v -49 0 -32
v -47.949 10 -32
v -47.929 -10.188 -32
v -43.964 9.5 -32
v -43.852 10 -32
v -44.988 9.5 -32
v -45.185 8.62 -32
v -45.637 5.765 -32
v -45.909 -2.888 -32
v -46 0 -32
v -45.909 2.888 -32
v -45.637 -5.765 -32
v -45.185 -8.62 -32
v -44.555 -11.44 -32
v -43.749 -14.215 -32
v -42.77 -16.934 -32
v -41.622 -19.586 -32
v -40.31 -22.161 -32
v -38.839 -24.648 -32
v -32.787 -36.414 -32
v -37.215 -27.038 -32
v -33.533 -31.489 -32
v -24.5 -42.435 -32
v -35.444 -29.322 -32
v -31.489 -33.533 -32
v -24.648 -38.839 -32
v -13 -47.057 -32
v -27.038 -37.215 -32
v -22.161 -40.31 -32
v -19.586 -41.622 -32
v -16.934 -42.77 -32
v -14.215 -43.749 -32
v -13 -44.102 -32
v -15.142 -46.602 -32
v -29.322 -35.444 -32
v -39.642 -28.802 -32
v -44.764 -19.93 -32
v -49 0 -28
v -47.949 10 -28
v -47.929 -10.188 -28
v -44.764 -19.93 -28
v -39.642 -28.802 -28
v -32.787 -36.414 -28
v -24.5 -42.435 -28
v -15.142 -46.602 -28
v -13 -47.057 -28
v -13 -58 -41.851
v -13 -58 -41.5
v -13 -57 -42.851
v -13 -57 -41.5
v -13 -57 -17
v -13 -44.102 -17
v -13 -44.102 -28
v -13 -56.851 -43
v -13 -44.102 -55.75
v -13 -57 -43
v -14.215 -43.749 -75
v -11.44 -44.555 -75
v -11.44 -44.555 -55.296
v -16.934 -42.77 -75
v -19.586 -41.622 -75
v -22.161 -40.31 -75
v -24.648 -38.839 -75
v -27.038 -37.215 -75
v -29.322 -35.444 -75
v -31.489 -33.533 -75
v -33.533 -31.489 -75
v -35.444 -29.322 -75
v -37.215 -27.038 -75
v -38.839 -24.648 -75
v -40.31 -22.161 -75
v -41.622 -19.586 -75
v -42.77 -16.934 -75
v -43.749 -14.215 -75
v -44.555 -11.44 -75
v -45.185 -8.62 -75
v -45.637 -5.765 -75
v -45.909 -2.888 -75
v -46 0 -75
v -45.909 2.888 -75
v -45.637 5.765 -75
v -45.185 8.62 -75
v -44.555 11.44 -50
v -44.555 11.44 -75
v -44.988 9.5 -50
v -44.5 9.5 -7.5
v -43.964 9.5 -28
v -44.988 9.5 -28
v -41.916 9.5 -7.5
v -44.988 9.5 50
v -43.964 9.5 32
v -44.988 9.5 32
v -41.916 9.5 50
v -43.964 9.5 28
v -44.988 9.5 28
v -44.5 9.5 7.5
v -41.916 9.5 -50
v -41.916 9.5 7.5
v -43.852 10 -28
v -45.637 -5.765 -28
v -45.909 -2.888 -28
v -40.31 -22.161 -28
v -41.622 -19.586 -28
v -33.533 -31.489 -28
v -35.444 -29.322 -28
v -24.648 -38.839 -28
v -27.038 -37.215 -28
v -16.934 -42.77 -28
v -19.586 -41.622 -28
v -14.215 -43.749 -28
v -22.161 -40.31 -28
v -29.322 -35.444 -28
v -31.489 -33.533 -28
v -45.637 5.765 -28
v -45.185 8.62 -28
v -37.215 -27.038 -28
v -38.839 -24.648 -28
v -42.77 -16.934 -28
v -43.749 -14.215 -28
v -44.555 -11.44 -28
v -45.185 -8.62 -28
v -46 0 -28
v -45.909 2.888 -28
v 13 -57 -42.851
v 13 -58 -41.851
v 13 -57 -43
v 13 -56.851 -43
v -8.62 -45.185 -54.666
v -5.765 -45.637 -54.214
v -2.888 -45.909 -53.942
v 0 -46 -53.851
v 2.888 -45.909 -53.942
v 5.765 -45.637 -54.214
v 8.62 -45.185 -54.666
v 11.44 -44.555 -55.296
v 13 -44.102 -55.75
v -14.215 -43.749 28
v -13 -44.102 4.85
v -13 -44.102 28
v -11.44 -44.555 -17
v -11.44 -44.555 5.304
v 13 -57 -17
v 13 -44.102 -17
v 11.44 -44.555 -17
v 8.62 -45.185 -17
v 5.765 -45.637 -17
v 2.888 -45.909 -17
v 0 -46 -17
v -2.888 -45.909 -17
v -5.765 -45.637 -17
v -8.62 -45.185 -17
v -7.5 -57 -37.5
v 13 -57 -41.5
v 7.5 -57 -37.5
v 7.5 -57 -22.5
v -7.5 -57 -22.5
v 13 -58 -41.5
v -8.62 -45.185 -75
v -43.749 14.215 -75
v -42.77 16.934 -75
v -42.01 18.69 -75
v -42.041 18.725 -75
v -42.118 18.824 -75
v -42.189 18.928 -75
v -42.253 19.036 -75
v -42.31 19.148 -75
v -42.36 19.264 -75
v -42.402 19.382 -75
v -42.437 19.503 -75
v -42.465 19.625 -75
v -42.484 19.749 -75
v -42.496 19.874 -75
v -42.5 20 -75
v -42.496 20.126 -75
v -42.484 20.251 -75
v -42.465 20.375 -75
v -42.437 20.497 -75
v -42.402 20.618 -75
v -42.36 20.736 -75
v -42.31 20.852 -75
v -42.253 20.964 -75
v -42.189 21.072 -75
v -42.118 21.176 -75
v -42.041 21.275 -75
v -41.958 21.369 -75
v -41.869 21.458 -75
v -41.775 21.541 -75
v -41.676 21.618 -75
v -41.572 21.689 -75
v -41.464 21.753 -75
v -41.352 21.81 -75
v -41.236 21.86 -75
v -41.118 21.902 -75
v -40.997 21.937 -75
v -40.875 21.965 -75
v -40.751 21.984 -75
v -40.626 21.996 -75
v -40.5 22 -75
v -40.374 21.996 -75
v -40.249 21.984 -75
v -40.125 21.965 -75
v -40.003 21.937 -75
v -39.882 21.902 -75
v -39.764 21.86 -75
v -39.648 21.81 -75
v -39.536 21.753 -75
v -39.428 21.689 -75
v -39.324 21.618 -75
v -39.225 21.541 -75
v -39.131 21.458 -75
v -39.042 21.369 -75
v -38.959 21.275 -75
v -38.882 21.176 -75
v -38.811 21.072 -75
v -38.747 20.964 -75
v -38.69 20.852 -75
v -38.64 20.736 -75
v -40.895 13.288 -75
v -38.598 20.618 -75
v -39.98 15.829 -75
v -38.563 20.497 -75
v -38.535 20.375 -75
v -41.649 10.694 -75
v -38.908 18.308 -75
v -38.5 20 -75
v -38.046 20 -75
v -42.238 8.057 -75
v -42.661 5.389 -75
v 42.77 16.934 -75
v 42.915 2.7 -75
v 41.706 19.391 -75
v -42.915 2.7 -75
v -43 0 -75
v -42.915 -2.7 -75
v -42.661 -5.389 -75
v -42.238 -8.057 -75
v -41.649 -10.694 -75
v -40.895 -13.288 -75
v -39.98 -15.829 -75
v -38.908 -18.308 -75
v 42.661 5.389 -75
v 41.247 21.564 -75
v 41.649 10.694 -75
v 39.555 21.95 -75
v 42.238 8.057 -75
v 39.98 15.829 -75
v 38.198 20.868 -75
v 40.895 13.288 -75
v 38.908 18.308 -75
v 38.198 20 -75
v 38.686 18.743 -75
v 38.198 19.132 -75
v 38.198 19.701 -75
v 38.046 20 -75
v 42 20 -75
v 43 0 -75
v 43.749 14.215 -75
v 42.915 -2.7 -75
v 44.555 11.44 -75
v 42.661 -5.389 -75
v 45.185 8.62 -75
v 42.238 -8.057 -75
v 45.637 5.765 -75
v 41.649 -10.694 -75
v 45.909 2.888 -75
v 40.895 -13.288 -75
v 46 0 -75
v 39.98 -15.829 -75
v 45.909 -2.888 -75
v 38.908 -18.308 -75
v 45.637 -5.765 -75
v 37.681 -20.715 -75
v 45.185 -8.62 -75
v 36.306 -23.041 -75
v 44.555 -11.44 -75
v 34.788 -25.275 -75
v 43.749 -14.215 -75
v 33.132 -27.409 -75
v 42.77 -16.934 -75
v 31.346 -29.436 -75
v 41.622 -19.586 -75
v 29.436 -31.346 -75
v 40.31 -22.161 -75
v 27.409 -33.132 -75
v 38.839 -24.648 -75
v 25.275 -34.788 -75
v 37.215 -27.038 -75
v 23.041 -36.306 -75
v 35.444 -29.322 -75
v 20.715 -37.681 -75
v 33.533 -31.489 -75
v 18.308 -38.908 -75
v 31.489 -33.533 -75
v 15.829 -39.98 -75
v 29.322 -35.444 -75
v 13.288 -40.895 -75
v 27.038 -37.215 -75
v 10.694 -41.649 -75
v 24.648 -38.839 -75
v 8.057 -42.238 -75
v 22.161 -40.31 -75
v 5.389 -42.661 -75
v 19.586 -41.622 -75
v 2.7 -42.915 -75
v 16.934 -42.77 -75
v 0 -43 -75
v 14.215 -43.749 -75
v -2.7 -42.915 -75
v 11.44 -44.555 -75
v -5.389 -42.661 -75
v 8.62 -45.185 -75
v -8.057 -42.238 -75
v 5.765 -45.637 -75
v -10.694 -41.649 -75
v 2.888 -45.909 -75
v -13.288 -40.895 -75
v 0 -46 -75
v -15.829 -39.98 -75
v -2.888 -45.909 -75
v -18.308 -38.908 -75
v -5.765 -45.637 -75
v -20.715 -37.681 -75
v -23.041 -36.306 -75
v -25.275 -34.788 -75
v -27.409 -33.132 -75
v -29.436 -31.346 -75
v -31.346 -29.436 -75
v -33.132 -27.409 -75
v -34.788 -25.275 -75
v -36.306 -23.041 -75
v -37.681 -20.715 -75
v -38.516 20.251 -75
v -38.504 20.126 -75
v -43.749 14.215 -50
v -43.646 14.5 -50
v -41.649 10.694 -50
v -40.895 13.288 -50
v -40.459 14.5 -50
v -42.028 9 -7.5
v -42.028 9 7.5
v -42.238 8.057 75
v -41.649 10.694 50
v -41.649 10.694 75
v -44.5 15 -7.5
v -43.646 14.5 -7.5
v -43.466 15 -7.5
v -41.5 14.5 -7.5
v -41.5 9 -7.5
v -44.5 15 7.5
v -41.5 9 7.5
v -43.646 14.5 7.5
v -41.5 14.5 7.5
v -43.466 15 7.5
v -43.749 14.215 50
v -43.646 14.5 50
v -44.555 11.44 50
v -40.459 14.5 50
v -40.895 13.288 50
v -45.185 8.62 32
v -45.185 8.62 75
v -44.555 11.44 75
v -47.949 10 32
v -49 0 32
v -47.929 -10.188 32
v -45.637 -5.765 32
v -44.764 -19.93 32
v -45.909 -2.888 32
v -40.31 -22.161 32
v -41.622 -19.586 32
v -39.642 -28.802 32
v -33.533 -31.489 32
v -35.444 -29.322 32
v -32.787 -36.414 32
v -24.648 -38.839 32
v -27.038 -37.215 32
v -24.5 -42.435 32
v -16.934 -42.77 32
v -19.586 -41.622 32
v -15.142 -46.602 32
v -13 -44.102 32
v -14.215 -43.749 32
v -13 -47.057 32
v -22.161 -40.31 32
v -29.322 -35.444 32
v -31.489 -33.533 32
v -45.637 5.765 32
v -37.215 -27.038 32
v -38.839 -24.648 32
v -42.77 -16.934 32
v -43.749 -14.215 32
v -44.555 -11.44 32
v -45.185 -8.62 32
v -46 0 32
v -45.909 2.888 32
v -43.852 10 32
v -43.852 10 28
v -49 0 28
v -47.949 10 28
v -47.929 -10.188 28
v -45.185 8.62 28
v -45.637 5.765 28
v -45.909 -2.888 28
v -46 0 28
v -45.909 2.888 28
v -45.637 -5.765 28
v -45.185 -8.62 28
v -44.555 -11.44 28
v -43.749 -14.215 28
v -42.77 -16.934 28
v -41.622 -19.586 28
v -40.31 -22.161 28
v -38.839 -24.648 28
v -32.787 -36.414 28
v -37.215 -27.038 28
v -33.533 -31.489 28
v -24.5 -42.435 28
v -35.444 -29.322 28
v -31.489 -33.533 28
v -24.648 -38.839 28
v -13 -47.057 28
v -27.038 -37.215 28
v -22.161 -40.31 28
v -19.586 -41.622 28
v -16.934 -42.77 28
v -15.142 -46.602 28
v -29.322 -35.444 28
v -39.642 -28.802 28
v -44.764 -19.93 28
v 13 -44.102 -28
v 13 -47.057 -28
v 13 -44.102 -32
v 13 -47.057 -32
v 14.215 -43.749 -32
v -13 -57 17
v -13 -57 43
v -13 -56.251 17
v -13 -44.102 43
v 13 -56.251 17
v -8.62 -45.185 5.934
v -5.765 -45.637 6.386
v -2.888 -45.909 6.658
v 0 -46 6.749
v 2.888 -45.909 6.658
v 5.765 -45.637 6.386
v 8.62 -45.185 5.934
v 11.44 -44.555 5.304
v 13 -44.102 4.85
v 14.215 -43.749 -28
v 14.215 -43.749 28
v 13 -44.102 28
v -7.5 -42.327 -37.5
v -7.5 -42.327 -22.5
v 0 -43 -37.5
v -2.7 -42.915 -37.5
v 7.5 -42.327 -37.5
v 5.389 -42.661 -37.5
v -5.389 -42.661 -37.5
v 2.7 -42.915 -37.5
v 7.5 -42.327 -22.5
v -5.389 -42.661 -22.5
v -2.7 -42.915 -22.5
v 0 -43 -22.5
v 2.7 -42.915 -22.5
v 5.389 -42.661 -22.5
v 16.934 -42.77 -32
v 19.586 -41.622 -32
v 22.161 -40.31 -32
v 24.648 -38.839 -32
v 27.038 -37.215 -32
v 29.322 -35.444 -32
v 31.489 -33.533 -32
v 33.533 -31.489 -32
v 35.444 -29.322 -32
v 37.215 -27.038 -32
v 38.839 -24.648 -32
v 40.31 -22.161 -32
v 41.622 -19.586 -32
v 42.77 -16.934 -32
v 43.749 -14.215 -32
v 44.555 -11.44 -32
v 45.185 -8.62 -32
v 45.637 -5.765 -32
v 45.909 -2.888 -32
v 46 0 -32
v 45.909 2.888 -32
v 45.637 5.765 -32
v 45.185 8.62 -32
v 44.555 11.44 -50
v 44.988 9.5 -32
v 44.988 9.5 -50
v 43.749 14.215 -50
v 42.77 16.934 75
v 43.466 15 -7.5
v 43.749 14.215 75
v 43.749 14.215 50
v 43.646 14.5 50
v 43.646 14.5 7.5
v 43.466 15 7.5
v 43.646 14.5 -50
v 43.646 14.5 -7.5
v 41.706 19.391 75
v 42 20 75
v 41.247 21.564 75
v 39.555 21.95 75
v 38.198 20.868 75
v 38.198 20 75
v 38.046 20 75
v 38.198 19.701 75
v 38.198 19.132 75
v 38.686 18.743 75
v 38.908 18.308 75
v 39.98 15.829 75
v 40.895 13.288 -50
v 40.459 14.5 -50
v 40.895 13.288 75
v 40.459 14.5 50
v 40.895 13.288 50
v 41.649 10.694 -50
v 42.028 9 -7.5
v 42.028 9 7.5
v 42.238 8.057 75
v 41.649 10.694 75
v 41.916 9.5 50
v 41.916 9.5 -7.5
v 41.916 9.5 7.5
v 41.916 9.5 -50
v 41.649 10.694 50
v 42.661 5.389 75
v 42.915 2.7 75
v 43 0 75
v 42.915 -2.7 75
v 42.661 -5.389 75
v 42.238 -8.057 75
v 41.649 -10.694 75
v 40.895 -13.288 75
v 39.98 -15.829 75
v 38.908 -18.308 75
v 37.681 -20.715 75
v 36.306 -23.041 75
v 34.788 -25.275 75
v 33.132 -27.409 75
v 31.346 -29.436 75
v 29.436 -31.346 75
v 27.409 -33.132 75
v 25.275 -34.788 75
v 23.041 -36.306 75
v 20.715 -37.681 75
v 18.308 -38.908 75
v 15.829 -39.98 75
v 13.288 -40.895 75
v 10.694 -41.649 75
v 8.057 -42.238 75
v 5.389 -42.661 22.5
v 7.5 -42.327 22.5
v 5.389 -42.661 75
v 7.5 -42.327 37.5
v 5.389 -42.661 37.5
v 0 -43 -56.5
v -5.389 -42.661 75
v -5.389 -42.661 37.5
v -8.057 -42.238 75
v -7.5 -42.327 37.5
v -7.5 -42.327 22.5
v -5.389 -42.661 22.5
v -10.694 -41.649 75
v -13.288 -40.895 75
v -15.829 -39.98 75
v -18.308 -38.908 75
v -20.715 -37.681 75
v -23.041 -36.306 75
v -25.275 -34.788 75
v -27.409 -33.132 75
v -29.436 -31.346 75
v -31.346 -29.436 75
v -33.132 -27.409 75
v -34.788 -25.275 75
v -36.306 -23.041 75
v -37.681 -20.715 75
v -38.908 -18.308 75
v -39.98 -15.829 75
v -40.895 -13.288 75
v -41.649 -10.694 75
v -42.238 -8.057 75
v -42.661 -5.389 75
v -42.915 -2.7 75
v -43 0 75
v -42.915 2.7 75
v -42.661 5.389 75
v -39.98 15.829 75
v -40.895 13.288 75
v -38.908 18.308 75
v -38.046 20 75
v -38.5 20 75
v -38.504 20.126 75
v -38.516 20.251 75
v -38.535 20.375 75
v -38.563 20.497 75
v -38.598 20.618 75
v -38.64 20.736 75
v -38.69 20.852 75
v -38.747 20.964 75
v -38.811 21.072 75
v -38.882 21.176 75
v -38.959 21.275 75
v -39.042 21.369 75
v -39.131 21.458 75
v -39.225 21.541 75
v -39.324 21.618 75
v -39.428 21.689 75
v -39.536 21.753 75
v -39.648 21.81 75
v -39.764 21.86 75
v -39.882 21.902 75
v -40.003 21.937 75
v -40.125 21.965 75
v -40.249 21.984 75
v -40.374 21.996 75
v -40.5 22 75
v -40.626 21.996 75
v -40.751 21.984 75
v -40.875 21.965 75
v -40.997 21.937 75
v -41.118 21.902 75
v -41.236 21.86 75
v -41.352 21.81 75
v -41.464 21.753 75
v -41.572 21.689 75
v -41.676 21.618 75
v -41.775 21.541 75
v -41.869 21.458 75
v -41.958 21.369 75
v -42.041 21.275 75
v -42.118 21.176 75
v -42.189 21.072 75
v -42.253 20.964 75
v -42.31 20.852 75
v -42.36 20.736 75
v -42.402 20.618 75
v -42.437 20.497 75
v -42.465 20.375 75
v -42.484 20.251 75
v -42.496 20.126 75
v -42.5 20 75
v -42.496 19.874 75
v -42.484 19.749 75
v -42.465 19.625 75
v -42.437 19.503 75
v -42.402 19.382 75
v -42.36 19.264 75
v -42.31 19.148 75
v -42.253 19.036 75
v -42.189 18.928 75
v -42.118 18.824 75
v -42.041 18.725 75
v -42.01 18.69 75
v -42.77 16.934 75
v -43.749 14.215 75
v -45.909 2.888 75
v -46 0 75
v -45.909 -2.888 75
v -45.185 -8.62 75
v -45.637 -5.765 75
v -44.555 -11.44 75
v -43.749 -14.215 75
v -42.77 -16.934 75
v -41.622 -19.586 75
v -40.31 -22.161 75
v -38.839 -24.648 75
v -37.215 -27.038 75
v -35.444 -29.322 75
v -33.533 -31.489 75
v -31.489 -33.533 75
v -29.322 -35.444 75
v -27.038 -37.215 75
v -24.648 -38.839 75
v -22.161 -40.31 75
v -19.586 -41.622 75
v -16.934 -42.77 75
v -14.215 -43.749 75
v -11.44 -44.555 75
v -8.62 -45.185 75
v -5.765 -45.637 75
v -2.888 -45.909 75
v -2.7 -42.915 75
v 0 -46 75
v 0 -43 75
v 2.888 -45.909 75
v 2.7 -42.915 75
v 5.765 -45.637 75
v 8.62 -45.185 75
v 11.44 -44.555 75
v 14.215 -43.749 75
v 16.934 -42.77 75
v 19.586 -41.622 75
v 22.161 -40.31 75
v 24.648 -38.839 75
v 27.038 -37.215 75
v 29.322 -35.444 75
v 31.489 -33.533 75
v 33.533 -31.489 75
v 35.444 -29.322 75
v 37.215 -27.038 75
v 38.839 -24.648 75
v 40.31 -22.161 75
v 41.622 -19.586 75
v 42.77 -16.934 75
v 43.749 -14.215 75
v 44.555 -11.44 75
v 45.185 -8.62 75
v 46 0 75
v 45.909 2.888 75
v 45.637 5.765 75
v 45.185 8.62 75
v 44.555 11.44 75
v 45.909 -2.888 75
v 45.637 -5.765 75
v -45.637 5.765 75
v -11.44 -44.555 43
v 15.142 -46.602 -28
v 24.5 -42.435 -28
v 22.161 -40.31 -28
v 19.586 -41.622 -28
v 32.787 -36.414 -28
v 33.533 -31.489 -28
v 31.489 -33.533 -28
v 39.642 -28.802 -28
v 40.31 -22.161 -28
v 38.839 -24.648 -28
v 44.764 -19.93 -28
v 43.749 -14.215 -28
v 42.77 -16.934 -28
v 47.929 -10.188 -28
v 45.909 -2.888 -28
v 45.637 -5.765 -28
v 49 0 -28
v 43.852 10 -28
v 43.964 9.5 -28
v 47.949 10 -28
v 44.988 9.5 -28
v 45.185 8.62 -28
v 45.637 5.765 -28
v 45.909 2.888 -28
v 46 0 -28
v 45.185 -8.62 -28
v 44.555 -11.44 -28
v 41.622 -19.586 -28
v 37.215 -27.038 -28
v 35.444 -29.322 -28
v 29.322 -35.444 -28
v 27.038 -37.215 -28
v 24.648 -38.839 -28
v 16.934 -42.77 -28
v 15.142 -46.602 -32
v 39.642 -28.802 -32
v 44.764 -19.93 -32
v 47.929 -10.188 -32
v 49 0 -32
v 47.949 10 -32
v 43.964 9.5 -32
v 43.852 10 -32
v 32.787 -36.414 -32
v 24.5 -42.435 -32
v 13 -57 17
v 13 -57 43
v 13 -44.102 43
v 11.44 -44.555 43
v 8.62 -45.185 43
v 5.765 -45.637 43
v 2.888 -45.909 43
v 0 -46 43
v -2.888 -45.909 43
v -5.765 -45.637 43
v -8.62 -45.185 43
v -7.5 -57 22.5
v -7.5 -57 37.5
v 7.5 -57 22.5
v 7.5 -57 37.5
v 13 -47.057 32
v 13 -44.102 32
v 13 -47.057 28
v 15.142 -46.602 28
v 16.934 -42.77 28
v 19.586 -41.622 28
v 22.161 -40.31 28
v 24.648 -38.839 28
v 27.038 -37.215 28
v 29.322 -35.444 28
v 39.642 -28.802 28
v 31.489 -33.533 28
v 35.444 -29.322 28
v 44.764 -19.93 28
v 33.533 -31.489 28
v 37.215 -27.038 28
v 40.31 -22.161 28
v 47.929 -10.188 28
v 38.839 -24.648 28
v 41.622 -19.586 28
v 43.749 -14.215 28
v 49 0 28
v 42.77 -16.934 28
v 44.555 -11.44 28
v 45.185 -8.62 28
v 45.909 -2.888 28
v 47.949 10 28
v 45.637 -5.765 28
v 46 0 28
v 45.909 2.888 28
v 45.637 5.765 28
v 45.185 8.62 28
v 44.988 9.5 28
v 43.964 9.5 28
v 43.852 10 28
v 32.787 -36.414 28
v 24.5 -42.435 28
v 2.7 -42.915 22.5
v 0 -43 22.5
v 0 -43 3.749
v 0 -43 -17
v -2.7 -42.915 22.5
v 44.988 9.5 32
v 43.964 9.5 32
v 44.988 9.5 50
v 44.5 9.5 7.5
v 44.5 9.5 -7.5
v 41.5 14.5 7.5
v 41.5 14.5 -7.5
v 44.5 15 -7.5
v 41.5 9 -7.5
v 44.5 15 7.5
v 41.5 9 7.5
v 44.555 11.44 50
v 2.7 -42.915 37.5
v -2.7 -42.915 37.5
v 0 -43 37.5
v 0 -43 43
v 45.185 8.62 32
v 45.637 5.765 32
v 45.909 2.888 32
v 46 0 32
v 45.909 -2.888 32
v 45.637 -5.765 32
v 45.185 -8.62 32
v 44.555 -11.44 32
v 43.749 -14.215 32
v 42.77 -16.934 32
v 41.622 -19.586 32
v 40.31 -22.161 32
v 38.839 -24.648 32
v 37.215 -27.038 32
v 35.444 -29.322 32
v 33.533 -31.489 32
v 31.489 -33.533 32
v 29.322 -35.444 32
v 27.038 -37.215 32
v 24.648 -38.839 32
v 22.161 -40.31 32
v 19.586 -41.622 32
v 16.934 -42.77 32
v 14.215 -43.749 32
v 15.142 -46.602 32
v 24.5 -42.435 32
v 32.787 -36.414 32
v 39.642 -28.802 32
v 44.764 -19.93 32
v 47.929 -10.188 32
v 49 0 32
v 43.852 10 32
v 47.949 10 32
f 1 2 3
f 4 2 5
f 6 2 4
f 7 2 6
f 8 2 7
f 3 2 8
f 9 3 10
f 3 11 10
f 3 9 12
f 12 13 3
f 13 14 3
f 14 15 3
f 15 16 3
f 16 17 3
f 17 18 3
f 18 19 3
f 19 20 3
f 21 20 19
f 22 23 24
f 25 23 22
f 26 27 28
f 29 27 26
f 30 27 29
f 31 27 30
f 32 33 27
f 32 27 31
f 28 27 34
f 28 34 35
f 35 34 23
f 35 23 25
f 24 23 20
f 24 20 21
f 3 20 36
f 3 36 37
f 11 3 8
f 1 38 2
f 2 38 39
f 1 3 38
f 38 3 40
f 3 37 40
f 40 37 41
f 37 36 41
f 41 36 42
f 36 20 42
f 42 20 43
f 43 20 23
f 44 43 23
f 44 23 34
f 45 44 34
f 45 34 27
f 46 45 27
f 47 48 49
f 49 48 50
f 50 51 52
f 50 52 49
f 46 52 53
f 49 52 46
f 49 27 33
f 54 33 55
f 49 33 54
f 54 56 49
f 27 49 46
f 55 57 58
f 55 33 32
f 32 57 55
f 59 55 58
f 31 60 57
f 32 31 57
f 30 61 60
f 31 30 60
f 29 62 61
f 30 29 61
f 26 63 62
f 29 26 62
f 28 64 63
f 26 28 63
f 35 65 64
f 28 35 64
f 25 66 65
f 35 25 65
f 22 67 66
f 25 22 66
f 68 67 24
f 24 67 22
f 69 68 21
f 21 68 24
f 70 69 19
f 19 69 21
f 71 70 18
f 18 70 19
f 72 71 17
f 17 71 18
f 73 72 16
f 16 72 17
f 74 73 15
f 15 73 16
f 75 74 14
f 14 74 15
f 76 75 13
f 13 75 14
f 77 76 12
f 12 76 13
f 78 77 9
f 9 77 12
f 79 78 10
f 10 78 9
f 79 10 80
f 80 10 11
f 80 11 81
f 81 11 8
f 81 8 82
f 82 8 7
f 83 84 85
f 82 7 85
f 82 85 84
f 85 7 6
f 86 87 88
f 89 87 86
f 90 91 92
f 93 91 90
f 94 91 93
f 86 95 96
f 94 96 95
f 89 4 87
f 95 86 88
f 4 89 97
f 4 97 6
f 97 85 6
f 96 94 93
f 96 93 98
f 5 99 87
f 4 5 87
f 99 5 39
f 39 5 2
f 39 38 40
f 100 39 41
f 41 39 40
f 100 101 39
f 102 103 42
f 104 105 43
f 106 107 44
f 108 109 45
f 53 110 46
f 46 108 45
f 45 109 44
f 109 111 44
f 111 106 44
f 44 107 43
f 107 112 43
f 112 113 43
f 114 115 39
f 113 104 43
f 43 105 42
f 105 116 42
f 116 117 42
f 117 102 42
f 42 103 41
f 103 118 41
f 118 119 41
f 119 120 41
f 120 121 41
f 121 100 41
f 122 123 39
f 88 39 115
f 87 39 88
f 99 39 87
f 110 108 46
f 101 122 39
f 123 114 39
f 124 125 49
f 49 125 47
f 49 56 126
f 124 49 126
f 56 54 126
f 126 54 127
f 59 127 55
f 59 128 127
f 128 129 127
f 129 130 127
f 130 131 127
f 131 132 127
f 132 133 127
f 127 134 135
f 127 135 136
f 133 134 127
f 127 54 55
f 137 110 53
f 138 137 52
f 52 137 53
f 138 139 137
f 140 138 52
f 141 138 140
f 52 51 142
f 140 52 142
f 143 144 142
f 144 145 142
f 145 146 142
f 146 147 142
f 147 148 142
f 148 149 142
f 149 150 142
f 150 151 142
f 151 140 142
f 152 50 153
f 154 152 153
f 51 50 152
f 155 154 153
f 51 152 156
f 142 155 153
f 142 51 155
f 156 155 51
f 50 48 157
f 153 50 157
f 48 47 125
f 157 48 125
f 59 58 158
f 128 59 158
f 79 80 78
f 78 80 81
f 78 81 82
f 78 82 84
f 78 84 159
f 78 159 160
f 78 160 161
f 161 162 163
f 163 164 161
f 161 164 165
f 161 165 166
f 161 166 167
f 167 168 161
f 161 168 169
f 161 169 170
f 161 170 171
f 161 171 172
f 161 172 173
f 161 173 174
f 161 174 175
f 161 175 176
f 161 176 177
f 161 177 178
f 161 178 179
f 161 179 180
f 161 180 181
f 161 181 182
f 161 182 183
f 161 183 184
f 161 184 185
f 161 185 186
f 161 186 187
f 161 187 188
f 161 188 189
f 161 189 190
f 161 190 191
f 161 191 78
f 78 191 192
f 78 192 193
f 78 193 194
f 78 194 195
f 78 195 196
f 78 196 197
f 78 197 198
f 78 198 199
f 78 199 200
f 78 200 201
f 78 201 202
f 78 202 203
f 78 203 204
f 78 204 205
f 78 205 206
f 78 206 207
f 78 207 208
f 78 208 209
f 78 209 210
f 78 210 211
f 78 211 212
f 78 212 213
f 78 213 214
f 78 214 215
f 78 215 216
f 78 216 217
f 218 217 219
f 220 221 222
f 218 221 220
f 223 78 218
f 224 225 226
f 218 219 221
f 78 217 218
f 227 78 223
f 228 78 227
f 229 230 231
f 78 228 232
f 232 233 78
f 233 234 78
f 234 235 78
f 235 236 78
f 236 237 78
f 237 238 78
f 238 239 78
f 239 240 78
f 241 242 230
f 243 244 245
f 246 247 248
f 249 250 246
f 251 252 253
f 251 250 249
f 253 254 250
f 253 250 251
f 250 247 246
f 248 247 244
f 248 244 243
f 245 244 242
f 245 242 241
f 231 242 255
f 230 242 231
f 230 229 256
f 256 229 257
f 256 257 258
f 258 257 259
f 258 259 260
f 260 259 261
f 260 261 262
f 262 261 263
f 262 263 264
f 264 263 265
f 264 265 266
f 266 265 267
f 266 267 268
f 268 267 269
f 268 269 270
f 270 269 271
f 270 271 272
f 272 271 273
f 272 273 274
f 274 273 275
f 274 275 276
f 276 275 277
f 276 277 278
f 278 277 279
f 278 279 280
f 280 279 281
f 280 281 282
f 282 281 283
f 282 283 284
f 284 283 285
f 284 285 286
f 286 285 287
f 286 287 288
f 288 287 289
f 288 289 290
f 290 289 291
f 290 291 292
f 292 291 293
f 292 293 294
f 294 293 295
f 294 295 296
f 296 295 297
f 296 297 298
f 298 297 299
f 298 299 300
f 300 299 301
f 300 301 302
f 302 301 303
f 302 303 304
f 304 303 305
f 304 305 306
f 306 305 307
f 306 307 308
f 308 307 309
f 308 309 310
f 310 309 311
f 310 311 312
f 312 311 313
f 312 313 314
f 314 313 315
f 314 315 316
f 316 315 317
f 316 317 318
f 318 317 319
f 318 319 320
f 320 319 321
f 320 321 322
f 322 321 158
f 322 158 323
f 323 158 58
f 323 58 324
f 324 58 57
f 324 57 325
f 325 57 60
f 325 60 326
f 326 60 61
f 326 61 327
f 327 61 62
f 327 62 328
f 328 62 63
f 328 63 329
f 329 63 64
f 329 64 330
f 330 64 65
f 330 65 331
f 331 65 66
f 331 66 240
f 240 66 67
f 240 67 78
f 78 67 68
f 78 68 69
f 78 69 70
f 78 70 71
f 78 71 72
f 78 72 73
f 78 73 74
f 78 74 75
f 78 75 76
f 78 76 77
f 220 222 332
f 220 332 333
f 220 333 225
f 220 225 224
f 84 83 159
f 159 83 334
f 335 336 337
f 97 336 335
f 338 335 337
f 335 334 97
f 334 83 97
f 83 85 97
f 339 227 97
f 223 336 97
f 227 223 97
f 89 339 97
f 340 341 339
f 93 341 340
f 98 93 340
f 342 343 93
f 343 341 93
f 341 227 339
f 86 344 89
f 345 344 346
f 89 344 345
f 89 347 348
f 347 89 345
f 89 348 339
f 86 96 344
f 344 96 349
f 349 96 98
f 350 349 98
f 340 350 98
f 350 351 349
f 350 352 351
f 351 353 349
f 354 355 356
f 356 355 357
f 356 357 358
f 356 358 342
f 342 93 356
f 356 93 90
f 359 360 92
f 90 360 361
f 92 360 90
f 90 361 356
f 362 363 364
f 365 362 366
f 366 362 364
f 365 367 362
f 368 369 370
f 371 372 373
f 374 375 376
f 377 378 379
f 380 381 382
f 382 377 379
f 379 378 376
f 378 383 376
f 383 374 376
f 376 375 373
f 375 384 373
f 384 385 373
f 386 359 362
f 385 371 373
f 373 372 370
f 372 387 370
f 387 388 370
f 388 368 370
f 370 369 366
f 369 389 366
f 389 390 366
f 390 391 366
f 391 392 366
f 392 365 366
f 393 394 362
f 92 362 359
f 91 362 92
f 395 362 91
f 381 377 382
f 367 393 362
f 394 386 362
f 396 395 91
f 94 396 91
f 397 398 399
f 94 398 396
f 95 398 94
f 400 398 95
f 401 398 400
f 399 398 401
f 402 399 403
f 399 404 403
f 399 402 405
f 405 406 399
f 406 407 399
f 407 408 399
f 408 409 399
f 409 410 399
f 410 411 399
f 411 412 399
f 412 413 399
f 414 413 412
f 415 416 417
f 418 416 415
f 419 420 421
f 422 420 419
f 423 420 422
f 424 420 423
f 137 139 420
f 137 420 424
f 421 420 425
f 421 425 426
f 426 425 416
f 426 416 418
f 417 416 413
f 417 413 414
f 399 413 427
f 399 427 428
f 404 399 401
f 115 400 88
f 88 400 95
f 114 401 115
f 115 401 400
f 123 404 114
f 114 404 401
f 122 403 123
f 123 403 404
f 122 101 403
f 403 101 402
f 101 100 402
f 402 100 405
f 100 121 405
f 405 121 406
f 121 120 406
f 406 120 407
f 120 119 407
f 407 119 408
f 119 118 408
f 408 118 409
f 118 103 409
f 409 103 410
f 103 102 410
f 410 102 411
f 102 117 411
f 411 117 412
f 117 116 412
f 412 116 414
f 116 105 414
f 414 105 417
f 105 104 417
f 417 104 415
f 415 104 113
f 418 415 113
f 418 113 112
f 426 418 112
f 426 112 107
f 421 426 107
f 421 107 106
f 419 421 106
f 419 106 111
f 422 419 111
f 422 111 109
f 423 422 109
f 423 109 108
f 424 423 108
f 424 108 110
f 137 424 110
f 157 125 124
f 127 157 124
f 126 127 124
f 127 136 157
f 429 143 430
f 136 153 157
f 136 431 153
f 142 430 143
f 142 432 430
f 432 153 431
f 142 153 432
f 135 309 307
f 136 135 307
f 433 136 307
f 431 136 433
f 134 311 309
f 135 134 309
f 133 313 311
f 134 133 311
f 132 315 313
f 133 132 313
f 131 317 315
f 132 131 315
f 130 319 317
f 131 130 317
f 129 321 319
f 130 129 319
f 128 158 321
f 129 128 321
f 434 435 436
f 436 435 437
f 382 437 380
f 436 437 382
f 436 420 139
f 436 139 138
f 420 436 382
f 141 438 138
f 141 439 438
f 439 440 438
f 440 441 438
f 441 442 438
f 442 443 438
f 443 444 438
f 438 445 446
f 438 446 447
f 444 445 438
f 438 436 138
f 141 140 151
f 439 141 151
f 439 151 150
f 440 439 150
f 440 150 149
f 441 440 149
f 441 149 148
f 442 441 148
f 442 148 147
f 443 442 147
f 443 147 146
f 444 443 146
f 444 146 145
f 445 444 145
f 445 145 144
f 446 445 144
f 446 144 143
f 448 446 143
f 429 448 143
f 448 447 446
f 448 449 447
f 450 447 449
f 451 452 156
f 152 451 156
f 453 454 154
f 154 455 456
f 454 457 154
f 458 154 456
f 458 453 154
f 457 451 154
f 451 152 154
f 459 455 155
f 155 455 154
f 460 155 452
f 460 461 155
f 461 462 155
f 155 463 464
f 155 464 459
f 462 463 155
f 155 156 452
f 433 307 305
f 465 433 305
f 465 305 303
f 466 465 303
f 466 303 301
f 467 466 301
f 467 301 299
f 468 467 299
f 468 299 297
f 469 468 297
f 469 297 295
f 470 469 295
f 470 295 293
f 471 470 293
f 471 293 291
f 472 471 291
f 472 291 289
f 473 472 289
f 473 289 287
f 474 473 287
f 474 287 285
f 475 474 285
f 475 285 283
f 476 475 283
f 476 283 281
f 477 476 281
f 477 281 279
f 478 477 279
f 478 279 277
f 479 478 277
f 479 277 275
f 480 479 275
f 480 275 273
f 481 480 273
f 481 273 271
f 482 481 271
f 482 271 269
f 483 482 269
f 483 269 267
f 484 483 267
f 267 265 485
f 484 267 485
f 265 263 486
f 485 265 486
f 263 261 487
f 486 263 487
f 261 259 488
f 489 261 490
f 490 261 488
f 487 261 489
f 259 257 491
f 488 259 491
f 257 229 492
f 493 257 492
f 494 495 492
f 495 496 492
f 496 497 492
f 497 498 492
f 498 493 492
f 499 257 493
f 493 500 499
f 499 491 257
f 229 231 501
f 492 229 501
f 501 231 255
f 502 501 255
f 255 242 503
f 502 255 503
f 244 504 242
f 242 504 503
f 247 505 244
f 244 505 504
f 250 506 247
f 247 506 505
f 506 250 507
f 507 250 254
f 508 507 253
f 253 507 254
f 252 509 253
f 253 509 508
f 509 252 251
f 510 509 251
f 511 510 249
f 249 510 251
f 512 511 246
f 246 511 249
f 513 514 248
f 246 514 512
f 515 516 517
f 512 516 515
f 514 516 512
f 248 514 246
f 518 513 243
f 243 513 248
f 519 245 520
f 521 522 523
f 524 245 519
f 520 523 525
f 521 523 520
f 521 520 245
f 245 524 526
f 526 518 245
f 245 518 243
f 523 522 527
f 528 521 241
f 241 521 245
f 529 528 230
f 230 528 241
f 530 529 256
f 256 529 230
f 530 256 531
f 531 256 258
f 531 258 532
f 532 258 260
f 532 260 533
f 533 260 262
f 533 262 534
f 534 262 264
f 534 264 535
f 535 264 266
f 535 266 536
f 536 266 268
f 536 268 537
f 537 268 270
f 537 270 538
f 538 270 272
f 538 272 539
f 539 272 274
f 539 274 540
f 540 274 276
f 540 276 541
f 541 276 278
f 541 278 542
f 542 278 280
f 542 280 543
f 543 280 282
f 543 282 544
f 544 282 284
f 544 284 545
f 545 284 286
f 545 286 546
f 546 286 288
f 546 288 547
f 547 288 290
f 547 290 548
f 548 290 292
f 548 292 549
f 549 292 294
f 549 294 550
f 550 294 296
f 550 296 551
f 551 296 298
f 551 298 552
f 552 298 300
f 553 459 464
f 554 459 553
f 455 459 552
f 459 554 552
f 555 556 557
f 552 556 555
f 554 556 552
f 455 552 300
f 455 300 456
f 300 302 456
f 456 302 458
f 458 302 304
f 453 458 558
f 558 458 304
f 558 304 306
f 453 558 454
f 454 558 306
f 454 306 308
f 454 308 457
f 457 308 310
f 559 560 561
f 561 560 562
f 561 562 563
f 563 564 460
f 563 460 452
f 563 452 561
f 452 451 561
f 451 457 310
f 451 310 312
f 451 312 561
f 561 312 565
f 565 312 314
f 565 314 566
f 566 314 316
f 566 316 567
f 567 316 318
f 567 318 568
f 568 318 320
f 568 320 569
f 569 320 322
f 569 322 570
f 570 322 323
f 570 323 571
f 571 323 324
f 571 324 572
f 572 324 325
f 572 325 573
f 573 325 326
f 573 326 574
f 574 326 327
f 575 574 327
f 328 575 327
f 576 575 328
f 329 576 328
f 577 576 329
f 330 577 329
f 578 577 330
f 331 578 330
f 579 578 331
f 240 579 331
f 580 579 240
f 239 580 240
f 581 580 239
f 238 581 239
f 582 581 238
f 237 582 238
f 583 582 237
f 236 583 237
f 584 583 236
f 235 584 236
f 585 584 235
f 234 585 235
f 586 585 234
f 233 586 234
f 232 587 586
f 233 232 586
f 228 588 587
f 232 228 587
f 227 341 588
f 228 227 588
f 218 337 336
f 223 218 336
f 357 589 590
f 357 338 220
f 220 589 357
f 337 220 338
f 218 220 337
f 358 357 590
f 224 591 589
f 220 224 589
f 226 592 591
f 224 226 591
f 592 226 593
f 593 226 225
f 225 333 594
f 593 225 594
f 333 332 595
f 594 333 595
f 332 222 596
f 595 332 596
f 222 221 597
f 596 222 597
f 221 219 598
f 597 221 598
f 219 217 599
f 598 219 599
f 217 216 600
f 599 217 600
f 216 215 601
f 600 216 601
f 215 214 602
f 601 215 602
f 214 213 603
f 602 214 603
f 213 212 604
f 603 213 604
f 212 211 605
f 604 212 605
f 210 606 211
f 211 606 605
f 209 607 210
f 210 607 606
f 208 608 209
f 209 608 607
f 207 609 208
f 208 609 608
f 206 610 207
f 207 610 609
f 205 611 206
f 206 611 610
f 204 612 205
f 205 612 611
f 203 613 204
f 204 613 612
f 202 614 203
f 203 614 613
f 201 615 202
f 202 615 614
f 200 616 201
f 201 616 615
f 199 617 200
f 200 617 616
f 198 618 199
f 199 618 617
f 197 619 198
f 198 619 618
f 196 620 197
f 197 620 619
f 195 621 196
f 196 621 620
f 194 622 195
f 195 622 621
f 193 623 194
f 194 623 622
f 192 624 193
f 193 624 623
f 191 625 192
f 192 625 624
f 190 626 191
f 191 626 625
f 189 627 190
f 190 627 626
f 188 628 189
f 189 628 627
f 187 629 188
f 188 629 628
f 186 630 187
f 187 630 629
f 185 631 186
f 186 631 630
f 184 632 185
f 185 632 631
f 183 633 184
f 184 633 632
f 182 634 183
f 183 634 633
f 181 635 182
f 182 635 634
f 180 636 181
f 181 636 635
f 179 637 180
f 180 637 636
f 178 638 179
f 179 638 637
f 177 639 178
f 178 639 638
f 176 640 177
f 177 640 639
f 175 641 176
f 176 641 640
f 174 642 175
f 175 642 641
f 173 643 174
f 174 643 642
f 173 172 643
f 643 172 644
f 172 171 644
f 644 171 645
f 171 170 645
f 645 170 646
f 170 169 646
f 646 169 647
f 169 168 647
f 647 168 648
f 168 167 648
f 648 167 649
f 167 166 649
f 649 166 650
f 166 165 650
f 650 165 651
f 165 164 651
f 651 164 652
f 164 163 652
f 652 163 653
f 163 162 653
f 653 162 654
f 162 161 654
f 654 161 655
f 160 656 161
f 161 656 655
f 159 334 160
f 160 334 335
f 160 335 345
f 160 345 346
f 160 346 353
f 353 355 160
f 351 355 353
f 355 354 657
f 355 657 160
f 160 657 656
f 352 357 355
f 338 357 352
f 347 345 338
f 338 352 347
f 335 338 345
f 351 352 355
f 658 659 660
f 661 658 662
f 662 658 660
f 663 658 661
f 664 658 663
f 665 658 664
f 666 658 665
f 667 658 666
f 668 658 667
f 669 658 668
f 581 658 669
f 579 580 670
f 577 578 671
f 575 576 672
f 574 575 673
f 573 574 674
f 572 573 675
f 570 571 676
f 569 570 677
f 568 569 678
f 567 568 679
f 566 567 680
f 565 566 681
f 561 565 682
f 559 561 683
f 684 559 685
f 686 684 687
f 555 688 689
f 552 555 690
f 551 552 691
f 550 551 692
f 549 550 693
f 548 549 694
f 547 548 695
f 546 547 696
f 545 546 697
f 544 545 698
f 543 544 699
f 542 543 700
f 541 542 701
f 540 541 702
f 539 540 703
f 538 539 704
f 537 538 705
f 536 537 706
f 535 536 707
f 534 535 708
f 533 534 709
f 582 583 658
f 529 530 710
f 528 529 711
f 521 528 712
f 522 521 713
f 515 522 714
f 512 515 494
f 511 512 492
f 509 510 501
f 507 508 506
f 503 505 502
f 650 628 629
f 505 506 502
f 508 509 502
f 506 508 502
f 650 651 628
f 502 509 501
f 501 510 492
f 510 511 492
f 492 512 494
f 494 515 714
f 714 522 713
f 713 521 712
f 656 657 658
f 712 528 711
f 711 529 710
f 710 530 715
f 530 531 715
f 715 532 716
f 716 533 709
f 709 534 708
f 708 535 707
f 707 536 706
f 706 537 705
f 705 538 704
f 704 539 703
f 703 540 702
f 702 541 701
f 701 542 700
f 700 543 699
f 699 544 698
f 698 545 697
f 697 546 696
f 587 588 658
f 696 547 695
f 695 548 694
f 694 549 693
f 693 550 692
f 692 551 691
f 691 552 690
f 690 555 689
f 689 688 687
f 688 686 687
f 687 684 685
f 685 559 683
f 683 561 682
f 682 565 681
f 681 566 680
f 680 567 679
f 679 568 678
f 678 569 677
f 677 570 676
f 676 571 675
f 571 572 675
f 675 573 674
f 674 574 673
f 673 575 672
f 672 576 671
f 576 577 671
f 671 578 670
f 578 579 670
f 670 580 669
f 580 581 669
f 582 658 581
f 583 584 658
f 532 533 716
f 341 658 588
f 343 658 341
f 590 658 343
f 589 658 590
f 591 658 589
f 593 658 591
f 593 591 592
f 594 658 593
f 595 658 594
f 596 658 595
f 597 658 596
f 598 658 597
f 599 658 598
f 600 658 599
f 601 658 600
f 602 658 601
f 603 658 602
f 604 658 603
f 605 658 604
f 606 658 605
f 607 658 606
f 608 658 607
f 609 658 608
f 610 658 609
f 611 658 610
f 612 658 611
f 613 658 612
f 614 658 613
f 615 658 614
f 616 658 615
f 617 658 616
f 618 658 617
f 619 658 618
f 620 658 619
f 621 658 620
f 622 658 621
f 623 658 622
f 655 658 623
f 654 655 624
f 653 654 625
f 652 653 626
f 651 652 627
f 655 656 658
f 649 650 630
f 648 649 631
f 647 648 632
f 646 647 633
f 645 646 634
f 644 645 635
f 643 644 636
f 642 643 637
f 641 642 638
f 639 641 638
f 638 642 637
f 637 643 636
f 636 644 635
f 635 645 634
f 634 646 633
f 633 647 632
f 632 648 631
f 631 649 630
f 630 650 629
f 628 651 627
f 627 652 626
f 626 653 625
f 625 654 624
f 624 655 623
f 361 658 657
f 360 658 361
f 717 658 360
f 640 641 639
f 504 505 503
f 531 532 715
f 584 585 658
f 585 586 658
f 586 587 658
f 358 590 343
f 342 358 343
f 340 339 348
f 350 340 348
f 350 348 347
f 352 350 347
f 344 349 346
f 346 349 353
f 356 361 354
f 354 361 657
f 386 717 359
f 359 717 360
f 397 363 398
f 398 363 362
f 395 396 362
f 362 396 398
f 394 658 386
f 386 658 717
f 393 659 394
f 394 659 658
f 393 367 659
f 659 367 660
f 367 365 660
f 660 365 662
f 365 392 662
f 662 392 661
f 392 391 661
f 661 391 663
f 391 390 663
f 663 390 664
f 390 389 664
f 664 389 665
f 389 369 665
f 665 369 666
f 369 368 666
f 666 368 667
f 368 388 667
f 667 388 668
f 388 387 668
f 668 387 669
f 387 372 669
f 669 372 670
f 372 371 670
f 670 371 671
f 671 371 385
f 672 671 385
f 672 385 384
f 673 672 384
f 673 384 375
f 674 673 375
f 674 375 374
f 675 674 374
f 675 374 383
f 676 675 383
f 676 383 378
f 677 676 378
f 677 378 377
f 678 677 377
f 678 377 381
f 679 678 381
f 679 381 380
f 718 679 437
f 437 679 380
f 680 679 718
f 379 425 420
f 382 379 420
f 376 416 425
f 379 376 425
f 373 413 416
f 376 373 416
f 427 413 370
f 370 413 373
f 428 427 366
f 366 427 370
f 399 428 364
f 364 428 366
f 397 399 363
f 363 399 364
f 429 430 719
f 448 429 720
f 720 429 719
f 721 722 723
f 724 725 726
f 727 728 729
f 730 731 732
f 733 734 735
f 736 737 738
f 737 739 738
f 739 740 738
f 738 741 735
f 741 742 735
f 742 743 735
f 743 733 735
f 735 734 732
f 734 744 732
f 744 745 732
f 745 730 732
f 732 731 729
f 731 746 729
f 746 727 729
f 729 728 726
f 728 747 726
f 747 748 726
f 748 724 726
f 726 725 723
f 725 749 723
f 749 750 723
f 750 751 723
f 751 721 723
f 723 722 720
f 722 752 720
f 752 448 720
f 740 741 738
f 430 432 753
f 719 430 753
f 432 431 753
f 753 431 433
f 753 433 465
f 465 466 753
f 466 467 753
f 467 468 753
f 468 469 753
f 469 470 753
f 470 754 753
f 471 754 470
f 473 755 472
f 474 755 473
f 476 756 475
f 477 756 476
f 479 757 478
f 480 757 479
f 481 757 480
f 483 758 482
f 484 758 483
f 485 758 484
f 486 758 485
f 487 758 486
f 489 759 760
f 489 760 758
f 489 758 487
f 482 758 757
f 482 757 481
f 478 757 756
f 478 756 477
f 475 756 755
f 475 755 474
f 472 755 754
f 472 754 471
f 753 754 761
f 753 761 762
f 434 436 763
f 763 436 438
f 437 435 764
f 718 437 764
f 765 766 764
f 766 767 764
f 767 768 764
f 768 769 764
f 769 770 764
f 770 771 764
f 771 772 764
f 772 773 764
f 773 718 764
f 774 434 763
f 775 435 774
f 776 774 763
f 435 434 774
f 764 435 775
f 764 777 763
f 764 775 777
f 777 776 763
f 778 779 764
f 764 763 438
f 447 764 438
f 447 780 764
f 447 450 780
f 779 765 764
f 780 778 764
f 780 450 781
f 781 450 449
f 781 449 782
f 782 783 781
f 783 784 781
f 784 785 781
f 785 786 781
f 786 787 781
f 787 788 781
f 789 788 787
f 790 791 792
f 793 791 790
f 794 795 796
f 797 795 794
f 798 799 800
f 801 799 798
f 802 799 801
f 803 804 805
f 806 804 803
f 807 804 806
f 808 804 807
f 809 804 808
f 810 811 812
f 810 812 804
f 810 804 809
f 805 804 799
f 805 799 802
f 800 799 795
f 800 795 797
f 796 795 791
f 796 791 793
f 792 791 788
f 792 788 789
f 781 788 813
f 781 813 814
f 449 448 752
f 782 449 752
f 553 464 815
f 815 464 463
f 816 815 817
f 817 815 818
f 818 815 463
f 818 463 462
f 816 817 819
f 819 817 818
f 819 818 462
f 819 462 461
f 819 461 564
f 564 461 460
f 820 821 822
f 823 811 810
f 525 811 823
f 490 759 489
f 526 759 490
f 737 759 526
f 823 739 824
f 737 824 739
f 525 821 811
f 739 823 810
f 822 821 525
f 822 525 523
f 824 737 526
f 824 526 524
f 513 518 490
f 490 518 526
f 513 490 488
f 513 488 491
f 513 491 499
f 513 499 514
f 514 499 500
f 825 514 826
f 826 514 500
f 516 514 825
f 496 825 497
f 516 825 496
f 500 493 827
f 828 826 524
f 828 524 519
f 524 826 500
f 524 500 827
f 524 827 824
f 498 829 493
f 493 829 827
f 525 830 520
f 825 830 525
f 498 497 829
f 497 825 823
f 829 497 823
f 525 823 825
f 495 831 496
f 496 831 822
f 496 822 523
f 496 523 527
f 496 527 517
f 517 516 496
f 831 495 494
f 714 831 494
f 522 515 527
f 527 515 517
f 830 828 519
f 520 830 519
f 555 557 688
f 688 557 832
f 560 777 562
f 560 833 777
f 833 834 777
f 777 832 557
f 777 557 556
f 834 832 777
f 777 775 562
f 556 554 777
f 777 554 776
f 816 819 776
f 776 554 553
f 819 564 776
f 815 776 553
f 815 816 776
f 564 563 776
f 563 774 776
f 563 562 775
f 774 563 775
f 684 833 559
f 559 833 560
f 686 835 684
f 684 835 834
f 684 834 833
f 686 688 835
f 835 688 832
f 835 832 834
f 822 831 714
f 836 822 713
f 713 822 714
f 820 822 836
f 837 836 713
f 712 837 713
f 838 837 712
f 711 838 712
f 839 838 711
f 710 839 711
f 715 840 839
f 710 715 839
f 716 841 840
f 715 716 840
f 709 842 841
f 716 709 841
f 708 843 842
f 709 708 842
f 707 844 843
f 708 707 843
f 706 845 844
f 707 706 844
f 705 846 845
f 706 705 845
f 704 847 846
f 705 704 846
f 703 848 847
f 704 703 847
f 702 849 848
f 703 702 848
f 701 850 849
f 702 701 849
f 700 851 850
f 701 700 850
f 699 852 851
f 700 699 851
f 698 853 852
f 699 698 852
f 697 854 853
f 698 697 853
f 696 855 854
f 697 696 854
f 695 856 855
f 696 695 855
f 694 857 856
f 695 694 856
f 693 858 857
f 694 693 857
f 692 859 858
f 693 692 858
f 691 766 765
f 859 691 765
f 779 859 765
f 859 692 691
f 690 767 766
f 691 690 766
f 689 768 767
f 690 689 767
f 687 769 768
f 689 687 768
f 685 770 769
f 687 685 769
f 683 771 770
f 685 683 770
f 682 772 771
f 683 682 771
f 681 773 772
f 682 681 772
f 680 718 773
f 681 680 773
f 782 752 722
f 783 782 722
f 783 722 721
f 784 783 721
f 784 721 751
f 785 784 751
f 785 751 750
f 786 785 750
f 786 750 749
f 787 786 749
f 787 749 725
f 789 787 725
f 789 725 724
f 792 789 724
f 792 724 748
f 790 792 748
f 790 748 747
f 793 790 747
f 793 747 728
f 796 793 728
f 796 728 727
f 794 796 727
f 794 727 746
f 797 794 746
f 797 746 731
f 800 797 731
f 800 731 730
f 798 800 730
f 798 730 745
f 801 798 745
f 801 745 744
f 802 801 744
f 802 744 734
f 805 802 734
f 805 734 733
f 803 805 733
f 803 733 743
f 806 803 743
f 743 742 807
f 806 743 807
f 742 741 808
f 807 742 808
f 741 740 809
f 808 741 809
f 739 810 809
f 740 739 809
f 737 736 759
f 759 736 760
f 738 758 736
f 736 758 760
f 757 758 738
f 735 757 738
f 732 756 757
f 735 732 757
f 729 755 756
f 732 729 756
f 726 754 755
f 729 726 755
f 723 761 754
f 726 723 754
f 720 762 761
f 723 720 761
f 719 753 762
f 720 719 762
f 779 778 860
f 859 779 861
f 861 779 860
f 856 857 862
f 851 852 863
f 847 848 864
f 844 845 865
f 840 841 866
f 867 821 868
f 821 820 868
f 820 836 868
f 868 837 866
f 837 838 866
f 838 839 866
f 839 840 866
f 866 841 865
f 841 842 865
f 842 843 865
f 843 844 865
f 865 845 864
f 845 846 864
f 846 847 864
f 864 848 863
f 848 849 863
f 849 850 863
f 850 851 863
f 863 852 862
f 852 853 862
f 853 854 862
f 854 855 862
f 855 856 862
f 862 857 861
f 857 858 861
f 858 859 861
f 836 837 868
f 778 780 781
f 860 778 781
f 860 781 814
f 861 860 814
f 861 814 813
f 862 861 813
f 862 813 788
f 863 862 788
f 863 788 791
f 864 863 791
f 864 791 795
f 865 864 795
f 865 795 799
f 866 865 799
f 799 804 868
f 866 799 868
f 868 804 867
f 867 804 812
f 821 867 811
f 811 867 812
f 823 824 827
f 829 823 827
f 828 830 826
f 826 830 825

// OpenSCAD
union() {

union() {
//pro posílení zesilenych ctvercu=aby je bylo mozno tisknout


union() {
//pro posileni pruvleku pro pasku

difference() {
//difference pro popruh

difference() {
//difference pro krychli na odečtení

union() {

union() {

//zakl rukojet
difference() {
        cylinder (h = 150, r=46, center = true, $fn=100);
// odecet vnitrku
      
translate([0,0,0])  rotate ([0,0,0]) cylinder (h = 150, r=43, center = true, $fn=100);
//posun o 20 do boku delka 300 prumer 95- odecita se od toho nahore
translate([0,95,0])  rotate ([0,0,0]) cube(size = [200,150,150], center = true, $fn=100);
//odecet pomoci krychle
}

translate([40,20,0]) cylinder (h = 150, r=2, center = true);
//leve zaobleni

translate([-40.5,20,0]) cylinder (h = 150, r=2, center = true, $fn=100);
//prave zaobleni
// zaobleni okraju
}

#translate([0,-50,-30]) scale([1,1,1]) cube(size = [26,14,26], center = true);
//-95 posunutí k okrajum na stěně válce //15 výška drž/
//vytvoreni spaliku

translate([0,-50,30]) scale([1,1,1]) cube(size = [26,14,26], center = true);
}

//rotate ([90,0,0]) translate([0,-30,0]) cylinder (h = 400, r=17, center = true, $fn=100);

//otovry na odecteni pro uchyty
translate([0,-50,30]) scale([1,1,1]) cube(size = [15,20,15], center = true);
// odecet ctverce pro uchytky

//rotate ([90,0,0]) translate([0,30,0]) cylinder (h = 400, r=17, center = true, $fn=100);
// 17 je prumer pro pripojeni drzaku
//odecty pro díry na prostrceni uchytek
translate([0,-50,-30]) scale([1,1,1]) cube(size = [15,20,15], center = true);
//20 je vnitrni prumer pro drzak

}
#rotate ([90,0,0]) translate([80,0,-12]) scale([1,1,1]) cube(size = [100,100,5], center = true);
//leva vysec pro popruh
rotate ([90,0,0]) translate([-80,0,-12]) scale([1,1,1]) cube(size = [100,100,5], center = true);
// prava vysec pro popruh
}



rotate ([90,0,0]) translate([-43,0,-12]) scale([1,1,1]) cube(size = [3,15,6], center = true);
// prava vysec pro popruh
rotate ([90,0,0]) translate([43,0,-12]) scale([1,1,1]) cube(size = [3,15,6], center = true);
}

/////////////////////////////////////////////////////////////////////////////////////////////
difference () {
// odecet 

// 95 112 17
translate([0,-50.5,-49])cube(size = [26,15,15], center = true);
//levo,pravo/ke mne, ode mne//nahoru,dolu
//krychle pro skoseni
translate([0,-58,-66.6])rotate ([45,0,0])cube(size = [35,35,35], center = true);
}
//prvni krychle a trojuhelnik
/////////////////////////////////////

//////////////////////////////////////////////////////////////////////////////////////////////
difference () {
// odecet 
translate([0,-50.5,9.6])cube(size = [26,15,15], center = true);
//levo,pravo/ke mne, ode mne//nahoru,dolu
//krychle pro skoseni
#translate([0,-58,-6])rotate ([45,0,0])cube(size = [35,35,35], center = true);
}

// 51 a 67 posouvani k a od valce kvadr a jeho seriznuti
//////////////////////////////////////////////////////////////////////////////////////////////
//druha krychle a trojuhelnik
}
///////////////////////////////////////////////////////////////
difference(){
//difference pro zebrovani
translate([0,0,30])cylinder (h = 4, r = 49, center = true);
//r je tloustka žebra

///////
translate([0,0,0])  rotate ([0,0,0]) cylinder (h = 150, r=45, center = true, $fn=100);
//posun o 20 do boku delka 300 prumer 95- odecita se od toho nahore
//odecte vnitrek valce
translate([0,95,0])  rotate ([0,0,0]) cube(size = [200,170,150], center = true, $fn=100);
//odecet pomoci krychle- 2/2 kruhu
translate([0,-50,30]) scale([1,1,1]) cube(size = [20,20,20], center = true);
// odecte vysec pro osazeni drzaku
}
////////////

///////////////////////////////////////////////////////////////
difference(){
//difference pro zebrovani
translate([0,0,-30])cylinder (h = 4, r = 49, center = true);
//r je tloustka žebra

///////
translate([0,0,0])  rotate ([0,0,0]) cylinder (h = 150, r=45, center = true, $fn=100);
//posun o 20 do boku delka 300 prumer 95- odecita se od toho nahore
//odecte vnitrek valce
translate([0,95,0])  rotate ([0,0,0]) cube(size = [200,170,150], center = true, $fn=100);
//odecet pomoci krychle- 2/2 kruhu
#translate([0,-50,-30]) scale([1,1,1]) cube(size = [20,20,20], center = true);
// odecte vysec pro osazeni drzaku
////////////
}

}
